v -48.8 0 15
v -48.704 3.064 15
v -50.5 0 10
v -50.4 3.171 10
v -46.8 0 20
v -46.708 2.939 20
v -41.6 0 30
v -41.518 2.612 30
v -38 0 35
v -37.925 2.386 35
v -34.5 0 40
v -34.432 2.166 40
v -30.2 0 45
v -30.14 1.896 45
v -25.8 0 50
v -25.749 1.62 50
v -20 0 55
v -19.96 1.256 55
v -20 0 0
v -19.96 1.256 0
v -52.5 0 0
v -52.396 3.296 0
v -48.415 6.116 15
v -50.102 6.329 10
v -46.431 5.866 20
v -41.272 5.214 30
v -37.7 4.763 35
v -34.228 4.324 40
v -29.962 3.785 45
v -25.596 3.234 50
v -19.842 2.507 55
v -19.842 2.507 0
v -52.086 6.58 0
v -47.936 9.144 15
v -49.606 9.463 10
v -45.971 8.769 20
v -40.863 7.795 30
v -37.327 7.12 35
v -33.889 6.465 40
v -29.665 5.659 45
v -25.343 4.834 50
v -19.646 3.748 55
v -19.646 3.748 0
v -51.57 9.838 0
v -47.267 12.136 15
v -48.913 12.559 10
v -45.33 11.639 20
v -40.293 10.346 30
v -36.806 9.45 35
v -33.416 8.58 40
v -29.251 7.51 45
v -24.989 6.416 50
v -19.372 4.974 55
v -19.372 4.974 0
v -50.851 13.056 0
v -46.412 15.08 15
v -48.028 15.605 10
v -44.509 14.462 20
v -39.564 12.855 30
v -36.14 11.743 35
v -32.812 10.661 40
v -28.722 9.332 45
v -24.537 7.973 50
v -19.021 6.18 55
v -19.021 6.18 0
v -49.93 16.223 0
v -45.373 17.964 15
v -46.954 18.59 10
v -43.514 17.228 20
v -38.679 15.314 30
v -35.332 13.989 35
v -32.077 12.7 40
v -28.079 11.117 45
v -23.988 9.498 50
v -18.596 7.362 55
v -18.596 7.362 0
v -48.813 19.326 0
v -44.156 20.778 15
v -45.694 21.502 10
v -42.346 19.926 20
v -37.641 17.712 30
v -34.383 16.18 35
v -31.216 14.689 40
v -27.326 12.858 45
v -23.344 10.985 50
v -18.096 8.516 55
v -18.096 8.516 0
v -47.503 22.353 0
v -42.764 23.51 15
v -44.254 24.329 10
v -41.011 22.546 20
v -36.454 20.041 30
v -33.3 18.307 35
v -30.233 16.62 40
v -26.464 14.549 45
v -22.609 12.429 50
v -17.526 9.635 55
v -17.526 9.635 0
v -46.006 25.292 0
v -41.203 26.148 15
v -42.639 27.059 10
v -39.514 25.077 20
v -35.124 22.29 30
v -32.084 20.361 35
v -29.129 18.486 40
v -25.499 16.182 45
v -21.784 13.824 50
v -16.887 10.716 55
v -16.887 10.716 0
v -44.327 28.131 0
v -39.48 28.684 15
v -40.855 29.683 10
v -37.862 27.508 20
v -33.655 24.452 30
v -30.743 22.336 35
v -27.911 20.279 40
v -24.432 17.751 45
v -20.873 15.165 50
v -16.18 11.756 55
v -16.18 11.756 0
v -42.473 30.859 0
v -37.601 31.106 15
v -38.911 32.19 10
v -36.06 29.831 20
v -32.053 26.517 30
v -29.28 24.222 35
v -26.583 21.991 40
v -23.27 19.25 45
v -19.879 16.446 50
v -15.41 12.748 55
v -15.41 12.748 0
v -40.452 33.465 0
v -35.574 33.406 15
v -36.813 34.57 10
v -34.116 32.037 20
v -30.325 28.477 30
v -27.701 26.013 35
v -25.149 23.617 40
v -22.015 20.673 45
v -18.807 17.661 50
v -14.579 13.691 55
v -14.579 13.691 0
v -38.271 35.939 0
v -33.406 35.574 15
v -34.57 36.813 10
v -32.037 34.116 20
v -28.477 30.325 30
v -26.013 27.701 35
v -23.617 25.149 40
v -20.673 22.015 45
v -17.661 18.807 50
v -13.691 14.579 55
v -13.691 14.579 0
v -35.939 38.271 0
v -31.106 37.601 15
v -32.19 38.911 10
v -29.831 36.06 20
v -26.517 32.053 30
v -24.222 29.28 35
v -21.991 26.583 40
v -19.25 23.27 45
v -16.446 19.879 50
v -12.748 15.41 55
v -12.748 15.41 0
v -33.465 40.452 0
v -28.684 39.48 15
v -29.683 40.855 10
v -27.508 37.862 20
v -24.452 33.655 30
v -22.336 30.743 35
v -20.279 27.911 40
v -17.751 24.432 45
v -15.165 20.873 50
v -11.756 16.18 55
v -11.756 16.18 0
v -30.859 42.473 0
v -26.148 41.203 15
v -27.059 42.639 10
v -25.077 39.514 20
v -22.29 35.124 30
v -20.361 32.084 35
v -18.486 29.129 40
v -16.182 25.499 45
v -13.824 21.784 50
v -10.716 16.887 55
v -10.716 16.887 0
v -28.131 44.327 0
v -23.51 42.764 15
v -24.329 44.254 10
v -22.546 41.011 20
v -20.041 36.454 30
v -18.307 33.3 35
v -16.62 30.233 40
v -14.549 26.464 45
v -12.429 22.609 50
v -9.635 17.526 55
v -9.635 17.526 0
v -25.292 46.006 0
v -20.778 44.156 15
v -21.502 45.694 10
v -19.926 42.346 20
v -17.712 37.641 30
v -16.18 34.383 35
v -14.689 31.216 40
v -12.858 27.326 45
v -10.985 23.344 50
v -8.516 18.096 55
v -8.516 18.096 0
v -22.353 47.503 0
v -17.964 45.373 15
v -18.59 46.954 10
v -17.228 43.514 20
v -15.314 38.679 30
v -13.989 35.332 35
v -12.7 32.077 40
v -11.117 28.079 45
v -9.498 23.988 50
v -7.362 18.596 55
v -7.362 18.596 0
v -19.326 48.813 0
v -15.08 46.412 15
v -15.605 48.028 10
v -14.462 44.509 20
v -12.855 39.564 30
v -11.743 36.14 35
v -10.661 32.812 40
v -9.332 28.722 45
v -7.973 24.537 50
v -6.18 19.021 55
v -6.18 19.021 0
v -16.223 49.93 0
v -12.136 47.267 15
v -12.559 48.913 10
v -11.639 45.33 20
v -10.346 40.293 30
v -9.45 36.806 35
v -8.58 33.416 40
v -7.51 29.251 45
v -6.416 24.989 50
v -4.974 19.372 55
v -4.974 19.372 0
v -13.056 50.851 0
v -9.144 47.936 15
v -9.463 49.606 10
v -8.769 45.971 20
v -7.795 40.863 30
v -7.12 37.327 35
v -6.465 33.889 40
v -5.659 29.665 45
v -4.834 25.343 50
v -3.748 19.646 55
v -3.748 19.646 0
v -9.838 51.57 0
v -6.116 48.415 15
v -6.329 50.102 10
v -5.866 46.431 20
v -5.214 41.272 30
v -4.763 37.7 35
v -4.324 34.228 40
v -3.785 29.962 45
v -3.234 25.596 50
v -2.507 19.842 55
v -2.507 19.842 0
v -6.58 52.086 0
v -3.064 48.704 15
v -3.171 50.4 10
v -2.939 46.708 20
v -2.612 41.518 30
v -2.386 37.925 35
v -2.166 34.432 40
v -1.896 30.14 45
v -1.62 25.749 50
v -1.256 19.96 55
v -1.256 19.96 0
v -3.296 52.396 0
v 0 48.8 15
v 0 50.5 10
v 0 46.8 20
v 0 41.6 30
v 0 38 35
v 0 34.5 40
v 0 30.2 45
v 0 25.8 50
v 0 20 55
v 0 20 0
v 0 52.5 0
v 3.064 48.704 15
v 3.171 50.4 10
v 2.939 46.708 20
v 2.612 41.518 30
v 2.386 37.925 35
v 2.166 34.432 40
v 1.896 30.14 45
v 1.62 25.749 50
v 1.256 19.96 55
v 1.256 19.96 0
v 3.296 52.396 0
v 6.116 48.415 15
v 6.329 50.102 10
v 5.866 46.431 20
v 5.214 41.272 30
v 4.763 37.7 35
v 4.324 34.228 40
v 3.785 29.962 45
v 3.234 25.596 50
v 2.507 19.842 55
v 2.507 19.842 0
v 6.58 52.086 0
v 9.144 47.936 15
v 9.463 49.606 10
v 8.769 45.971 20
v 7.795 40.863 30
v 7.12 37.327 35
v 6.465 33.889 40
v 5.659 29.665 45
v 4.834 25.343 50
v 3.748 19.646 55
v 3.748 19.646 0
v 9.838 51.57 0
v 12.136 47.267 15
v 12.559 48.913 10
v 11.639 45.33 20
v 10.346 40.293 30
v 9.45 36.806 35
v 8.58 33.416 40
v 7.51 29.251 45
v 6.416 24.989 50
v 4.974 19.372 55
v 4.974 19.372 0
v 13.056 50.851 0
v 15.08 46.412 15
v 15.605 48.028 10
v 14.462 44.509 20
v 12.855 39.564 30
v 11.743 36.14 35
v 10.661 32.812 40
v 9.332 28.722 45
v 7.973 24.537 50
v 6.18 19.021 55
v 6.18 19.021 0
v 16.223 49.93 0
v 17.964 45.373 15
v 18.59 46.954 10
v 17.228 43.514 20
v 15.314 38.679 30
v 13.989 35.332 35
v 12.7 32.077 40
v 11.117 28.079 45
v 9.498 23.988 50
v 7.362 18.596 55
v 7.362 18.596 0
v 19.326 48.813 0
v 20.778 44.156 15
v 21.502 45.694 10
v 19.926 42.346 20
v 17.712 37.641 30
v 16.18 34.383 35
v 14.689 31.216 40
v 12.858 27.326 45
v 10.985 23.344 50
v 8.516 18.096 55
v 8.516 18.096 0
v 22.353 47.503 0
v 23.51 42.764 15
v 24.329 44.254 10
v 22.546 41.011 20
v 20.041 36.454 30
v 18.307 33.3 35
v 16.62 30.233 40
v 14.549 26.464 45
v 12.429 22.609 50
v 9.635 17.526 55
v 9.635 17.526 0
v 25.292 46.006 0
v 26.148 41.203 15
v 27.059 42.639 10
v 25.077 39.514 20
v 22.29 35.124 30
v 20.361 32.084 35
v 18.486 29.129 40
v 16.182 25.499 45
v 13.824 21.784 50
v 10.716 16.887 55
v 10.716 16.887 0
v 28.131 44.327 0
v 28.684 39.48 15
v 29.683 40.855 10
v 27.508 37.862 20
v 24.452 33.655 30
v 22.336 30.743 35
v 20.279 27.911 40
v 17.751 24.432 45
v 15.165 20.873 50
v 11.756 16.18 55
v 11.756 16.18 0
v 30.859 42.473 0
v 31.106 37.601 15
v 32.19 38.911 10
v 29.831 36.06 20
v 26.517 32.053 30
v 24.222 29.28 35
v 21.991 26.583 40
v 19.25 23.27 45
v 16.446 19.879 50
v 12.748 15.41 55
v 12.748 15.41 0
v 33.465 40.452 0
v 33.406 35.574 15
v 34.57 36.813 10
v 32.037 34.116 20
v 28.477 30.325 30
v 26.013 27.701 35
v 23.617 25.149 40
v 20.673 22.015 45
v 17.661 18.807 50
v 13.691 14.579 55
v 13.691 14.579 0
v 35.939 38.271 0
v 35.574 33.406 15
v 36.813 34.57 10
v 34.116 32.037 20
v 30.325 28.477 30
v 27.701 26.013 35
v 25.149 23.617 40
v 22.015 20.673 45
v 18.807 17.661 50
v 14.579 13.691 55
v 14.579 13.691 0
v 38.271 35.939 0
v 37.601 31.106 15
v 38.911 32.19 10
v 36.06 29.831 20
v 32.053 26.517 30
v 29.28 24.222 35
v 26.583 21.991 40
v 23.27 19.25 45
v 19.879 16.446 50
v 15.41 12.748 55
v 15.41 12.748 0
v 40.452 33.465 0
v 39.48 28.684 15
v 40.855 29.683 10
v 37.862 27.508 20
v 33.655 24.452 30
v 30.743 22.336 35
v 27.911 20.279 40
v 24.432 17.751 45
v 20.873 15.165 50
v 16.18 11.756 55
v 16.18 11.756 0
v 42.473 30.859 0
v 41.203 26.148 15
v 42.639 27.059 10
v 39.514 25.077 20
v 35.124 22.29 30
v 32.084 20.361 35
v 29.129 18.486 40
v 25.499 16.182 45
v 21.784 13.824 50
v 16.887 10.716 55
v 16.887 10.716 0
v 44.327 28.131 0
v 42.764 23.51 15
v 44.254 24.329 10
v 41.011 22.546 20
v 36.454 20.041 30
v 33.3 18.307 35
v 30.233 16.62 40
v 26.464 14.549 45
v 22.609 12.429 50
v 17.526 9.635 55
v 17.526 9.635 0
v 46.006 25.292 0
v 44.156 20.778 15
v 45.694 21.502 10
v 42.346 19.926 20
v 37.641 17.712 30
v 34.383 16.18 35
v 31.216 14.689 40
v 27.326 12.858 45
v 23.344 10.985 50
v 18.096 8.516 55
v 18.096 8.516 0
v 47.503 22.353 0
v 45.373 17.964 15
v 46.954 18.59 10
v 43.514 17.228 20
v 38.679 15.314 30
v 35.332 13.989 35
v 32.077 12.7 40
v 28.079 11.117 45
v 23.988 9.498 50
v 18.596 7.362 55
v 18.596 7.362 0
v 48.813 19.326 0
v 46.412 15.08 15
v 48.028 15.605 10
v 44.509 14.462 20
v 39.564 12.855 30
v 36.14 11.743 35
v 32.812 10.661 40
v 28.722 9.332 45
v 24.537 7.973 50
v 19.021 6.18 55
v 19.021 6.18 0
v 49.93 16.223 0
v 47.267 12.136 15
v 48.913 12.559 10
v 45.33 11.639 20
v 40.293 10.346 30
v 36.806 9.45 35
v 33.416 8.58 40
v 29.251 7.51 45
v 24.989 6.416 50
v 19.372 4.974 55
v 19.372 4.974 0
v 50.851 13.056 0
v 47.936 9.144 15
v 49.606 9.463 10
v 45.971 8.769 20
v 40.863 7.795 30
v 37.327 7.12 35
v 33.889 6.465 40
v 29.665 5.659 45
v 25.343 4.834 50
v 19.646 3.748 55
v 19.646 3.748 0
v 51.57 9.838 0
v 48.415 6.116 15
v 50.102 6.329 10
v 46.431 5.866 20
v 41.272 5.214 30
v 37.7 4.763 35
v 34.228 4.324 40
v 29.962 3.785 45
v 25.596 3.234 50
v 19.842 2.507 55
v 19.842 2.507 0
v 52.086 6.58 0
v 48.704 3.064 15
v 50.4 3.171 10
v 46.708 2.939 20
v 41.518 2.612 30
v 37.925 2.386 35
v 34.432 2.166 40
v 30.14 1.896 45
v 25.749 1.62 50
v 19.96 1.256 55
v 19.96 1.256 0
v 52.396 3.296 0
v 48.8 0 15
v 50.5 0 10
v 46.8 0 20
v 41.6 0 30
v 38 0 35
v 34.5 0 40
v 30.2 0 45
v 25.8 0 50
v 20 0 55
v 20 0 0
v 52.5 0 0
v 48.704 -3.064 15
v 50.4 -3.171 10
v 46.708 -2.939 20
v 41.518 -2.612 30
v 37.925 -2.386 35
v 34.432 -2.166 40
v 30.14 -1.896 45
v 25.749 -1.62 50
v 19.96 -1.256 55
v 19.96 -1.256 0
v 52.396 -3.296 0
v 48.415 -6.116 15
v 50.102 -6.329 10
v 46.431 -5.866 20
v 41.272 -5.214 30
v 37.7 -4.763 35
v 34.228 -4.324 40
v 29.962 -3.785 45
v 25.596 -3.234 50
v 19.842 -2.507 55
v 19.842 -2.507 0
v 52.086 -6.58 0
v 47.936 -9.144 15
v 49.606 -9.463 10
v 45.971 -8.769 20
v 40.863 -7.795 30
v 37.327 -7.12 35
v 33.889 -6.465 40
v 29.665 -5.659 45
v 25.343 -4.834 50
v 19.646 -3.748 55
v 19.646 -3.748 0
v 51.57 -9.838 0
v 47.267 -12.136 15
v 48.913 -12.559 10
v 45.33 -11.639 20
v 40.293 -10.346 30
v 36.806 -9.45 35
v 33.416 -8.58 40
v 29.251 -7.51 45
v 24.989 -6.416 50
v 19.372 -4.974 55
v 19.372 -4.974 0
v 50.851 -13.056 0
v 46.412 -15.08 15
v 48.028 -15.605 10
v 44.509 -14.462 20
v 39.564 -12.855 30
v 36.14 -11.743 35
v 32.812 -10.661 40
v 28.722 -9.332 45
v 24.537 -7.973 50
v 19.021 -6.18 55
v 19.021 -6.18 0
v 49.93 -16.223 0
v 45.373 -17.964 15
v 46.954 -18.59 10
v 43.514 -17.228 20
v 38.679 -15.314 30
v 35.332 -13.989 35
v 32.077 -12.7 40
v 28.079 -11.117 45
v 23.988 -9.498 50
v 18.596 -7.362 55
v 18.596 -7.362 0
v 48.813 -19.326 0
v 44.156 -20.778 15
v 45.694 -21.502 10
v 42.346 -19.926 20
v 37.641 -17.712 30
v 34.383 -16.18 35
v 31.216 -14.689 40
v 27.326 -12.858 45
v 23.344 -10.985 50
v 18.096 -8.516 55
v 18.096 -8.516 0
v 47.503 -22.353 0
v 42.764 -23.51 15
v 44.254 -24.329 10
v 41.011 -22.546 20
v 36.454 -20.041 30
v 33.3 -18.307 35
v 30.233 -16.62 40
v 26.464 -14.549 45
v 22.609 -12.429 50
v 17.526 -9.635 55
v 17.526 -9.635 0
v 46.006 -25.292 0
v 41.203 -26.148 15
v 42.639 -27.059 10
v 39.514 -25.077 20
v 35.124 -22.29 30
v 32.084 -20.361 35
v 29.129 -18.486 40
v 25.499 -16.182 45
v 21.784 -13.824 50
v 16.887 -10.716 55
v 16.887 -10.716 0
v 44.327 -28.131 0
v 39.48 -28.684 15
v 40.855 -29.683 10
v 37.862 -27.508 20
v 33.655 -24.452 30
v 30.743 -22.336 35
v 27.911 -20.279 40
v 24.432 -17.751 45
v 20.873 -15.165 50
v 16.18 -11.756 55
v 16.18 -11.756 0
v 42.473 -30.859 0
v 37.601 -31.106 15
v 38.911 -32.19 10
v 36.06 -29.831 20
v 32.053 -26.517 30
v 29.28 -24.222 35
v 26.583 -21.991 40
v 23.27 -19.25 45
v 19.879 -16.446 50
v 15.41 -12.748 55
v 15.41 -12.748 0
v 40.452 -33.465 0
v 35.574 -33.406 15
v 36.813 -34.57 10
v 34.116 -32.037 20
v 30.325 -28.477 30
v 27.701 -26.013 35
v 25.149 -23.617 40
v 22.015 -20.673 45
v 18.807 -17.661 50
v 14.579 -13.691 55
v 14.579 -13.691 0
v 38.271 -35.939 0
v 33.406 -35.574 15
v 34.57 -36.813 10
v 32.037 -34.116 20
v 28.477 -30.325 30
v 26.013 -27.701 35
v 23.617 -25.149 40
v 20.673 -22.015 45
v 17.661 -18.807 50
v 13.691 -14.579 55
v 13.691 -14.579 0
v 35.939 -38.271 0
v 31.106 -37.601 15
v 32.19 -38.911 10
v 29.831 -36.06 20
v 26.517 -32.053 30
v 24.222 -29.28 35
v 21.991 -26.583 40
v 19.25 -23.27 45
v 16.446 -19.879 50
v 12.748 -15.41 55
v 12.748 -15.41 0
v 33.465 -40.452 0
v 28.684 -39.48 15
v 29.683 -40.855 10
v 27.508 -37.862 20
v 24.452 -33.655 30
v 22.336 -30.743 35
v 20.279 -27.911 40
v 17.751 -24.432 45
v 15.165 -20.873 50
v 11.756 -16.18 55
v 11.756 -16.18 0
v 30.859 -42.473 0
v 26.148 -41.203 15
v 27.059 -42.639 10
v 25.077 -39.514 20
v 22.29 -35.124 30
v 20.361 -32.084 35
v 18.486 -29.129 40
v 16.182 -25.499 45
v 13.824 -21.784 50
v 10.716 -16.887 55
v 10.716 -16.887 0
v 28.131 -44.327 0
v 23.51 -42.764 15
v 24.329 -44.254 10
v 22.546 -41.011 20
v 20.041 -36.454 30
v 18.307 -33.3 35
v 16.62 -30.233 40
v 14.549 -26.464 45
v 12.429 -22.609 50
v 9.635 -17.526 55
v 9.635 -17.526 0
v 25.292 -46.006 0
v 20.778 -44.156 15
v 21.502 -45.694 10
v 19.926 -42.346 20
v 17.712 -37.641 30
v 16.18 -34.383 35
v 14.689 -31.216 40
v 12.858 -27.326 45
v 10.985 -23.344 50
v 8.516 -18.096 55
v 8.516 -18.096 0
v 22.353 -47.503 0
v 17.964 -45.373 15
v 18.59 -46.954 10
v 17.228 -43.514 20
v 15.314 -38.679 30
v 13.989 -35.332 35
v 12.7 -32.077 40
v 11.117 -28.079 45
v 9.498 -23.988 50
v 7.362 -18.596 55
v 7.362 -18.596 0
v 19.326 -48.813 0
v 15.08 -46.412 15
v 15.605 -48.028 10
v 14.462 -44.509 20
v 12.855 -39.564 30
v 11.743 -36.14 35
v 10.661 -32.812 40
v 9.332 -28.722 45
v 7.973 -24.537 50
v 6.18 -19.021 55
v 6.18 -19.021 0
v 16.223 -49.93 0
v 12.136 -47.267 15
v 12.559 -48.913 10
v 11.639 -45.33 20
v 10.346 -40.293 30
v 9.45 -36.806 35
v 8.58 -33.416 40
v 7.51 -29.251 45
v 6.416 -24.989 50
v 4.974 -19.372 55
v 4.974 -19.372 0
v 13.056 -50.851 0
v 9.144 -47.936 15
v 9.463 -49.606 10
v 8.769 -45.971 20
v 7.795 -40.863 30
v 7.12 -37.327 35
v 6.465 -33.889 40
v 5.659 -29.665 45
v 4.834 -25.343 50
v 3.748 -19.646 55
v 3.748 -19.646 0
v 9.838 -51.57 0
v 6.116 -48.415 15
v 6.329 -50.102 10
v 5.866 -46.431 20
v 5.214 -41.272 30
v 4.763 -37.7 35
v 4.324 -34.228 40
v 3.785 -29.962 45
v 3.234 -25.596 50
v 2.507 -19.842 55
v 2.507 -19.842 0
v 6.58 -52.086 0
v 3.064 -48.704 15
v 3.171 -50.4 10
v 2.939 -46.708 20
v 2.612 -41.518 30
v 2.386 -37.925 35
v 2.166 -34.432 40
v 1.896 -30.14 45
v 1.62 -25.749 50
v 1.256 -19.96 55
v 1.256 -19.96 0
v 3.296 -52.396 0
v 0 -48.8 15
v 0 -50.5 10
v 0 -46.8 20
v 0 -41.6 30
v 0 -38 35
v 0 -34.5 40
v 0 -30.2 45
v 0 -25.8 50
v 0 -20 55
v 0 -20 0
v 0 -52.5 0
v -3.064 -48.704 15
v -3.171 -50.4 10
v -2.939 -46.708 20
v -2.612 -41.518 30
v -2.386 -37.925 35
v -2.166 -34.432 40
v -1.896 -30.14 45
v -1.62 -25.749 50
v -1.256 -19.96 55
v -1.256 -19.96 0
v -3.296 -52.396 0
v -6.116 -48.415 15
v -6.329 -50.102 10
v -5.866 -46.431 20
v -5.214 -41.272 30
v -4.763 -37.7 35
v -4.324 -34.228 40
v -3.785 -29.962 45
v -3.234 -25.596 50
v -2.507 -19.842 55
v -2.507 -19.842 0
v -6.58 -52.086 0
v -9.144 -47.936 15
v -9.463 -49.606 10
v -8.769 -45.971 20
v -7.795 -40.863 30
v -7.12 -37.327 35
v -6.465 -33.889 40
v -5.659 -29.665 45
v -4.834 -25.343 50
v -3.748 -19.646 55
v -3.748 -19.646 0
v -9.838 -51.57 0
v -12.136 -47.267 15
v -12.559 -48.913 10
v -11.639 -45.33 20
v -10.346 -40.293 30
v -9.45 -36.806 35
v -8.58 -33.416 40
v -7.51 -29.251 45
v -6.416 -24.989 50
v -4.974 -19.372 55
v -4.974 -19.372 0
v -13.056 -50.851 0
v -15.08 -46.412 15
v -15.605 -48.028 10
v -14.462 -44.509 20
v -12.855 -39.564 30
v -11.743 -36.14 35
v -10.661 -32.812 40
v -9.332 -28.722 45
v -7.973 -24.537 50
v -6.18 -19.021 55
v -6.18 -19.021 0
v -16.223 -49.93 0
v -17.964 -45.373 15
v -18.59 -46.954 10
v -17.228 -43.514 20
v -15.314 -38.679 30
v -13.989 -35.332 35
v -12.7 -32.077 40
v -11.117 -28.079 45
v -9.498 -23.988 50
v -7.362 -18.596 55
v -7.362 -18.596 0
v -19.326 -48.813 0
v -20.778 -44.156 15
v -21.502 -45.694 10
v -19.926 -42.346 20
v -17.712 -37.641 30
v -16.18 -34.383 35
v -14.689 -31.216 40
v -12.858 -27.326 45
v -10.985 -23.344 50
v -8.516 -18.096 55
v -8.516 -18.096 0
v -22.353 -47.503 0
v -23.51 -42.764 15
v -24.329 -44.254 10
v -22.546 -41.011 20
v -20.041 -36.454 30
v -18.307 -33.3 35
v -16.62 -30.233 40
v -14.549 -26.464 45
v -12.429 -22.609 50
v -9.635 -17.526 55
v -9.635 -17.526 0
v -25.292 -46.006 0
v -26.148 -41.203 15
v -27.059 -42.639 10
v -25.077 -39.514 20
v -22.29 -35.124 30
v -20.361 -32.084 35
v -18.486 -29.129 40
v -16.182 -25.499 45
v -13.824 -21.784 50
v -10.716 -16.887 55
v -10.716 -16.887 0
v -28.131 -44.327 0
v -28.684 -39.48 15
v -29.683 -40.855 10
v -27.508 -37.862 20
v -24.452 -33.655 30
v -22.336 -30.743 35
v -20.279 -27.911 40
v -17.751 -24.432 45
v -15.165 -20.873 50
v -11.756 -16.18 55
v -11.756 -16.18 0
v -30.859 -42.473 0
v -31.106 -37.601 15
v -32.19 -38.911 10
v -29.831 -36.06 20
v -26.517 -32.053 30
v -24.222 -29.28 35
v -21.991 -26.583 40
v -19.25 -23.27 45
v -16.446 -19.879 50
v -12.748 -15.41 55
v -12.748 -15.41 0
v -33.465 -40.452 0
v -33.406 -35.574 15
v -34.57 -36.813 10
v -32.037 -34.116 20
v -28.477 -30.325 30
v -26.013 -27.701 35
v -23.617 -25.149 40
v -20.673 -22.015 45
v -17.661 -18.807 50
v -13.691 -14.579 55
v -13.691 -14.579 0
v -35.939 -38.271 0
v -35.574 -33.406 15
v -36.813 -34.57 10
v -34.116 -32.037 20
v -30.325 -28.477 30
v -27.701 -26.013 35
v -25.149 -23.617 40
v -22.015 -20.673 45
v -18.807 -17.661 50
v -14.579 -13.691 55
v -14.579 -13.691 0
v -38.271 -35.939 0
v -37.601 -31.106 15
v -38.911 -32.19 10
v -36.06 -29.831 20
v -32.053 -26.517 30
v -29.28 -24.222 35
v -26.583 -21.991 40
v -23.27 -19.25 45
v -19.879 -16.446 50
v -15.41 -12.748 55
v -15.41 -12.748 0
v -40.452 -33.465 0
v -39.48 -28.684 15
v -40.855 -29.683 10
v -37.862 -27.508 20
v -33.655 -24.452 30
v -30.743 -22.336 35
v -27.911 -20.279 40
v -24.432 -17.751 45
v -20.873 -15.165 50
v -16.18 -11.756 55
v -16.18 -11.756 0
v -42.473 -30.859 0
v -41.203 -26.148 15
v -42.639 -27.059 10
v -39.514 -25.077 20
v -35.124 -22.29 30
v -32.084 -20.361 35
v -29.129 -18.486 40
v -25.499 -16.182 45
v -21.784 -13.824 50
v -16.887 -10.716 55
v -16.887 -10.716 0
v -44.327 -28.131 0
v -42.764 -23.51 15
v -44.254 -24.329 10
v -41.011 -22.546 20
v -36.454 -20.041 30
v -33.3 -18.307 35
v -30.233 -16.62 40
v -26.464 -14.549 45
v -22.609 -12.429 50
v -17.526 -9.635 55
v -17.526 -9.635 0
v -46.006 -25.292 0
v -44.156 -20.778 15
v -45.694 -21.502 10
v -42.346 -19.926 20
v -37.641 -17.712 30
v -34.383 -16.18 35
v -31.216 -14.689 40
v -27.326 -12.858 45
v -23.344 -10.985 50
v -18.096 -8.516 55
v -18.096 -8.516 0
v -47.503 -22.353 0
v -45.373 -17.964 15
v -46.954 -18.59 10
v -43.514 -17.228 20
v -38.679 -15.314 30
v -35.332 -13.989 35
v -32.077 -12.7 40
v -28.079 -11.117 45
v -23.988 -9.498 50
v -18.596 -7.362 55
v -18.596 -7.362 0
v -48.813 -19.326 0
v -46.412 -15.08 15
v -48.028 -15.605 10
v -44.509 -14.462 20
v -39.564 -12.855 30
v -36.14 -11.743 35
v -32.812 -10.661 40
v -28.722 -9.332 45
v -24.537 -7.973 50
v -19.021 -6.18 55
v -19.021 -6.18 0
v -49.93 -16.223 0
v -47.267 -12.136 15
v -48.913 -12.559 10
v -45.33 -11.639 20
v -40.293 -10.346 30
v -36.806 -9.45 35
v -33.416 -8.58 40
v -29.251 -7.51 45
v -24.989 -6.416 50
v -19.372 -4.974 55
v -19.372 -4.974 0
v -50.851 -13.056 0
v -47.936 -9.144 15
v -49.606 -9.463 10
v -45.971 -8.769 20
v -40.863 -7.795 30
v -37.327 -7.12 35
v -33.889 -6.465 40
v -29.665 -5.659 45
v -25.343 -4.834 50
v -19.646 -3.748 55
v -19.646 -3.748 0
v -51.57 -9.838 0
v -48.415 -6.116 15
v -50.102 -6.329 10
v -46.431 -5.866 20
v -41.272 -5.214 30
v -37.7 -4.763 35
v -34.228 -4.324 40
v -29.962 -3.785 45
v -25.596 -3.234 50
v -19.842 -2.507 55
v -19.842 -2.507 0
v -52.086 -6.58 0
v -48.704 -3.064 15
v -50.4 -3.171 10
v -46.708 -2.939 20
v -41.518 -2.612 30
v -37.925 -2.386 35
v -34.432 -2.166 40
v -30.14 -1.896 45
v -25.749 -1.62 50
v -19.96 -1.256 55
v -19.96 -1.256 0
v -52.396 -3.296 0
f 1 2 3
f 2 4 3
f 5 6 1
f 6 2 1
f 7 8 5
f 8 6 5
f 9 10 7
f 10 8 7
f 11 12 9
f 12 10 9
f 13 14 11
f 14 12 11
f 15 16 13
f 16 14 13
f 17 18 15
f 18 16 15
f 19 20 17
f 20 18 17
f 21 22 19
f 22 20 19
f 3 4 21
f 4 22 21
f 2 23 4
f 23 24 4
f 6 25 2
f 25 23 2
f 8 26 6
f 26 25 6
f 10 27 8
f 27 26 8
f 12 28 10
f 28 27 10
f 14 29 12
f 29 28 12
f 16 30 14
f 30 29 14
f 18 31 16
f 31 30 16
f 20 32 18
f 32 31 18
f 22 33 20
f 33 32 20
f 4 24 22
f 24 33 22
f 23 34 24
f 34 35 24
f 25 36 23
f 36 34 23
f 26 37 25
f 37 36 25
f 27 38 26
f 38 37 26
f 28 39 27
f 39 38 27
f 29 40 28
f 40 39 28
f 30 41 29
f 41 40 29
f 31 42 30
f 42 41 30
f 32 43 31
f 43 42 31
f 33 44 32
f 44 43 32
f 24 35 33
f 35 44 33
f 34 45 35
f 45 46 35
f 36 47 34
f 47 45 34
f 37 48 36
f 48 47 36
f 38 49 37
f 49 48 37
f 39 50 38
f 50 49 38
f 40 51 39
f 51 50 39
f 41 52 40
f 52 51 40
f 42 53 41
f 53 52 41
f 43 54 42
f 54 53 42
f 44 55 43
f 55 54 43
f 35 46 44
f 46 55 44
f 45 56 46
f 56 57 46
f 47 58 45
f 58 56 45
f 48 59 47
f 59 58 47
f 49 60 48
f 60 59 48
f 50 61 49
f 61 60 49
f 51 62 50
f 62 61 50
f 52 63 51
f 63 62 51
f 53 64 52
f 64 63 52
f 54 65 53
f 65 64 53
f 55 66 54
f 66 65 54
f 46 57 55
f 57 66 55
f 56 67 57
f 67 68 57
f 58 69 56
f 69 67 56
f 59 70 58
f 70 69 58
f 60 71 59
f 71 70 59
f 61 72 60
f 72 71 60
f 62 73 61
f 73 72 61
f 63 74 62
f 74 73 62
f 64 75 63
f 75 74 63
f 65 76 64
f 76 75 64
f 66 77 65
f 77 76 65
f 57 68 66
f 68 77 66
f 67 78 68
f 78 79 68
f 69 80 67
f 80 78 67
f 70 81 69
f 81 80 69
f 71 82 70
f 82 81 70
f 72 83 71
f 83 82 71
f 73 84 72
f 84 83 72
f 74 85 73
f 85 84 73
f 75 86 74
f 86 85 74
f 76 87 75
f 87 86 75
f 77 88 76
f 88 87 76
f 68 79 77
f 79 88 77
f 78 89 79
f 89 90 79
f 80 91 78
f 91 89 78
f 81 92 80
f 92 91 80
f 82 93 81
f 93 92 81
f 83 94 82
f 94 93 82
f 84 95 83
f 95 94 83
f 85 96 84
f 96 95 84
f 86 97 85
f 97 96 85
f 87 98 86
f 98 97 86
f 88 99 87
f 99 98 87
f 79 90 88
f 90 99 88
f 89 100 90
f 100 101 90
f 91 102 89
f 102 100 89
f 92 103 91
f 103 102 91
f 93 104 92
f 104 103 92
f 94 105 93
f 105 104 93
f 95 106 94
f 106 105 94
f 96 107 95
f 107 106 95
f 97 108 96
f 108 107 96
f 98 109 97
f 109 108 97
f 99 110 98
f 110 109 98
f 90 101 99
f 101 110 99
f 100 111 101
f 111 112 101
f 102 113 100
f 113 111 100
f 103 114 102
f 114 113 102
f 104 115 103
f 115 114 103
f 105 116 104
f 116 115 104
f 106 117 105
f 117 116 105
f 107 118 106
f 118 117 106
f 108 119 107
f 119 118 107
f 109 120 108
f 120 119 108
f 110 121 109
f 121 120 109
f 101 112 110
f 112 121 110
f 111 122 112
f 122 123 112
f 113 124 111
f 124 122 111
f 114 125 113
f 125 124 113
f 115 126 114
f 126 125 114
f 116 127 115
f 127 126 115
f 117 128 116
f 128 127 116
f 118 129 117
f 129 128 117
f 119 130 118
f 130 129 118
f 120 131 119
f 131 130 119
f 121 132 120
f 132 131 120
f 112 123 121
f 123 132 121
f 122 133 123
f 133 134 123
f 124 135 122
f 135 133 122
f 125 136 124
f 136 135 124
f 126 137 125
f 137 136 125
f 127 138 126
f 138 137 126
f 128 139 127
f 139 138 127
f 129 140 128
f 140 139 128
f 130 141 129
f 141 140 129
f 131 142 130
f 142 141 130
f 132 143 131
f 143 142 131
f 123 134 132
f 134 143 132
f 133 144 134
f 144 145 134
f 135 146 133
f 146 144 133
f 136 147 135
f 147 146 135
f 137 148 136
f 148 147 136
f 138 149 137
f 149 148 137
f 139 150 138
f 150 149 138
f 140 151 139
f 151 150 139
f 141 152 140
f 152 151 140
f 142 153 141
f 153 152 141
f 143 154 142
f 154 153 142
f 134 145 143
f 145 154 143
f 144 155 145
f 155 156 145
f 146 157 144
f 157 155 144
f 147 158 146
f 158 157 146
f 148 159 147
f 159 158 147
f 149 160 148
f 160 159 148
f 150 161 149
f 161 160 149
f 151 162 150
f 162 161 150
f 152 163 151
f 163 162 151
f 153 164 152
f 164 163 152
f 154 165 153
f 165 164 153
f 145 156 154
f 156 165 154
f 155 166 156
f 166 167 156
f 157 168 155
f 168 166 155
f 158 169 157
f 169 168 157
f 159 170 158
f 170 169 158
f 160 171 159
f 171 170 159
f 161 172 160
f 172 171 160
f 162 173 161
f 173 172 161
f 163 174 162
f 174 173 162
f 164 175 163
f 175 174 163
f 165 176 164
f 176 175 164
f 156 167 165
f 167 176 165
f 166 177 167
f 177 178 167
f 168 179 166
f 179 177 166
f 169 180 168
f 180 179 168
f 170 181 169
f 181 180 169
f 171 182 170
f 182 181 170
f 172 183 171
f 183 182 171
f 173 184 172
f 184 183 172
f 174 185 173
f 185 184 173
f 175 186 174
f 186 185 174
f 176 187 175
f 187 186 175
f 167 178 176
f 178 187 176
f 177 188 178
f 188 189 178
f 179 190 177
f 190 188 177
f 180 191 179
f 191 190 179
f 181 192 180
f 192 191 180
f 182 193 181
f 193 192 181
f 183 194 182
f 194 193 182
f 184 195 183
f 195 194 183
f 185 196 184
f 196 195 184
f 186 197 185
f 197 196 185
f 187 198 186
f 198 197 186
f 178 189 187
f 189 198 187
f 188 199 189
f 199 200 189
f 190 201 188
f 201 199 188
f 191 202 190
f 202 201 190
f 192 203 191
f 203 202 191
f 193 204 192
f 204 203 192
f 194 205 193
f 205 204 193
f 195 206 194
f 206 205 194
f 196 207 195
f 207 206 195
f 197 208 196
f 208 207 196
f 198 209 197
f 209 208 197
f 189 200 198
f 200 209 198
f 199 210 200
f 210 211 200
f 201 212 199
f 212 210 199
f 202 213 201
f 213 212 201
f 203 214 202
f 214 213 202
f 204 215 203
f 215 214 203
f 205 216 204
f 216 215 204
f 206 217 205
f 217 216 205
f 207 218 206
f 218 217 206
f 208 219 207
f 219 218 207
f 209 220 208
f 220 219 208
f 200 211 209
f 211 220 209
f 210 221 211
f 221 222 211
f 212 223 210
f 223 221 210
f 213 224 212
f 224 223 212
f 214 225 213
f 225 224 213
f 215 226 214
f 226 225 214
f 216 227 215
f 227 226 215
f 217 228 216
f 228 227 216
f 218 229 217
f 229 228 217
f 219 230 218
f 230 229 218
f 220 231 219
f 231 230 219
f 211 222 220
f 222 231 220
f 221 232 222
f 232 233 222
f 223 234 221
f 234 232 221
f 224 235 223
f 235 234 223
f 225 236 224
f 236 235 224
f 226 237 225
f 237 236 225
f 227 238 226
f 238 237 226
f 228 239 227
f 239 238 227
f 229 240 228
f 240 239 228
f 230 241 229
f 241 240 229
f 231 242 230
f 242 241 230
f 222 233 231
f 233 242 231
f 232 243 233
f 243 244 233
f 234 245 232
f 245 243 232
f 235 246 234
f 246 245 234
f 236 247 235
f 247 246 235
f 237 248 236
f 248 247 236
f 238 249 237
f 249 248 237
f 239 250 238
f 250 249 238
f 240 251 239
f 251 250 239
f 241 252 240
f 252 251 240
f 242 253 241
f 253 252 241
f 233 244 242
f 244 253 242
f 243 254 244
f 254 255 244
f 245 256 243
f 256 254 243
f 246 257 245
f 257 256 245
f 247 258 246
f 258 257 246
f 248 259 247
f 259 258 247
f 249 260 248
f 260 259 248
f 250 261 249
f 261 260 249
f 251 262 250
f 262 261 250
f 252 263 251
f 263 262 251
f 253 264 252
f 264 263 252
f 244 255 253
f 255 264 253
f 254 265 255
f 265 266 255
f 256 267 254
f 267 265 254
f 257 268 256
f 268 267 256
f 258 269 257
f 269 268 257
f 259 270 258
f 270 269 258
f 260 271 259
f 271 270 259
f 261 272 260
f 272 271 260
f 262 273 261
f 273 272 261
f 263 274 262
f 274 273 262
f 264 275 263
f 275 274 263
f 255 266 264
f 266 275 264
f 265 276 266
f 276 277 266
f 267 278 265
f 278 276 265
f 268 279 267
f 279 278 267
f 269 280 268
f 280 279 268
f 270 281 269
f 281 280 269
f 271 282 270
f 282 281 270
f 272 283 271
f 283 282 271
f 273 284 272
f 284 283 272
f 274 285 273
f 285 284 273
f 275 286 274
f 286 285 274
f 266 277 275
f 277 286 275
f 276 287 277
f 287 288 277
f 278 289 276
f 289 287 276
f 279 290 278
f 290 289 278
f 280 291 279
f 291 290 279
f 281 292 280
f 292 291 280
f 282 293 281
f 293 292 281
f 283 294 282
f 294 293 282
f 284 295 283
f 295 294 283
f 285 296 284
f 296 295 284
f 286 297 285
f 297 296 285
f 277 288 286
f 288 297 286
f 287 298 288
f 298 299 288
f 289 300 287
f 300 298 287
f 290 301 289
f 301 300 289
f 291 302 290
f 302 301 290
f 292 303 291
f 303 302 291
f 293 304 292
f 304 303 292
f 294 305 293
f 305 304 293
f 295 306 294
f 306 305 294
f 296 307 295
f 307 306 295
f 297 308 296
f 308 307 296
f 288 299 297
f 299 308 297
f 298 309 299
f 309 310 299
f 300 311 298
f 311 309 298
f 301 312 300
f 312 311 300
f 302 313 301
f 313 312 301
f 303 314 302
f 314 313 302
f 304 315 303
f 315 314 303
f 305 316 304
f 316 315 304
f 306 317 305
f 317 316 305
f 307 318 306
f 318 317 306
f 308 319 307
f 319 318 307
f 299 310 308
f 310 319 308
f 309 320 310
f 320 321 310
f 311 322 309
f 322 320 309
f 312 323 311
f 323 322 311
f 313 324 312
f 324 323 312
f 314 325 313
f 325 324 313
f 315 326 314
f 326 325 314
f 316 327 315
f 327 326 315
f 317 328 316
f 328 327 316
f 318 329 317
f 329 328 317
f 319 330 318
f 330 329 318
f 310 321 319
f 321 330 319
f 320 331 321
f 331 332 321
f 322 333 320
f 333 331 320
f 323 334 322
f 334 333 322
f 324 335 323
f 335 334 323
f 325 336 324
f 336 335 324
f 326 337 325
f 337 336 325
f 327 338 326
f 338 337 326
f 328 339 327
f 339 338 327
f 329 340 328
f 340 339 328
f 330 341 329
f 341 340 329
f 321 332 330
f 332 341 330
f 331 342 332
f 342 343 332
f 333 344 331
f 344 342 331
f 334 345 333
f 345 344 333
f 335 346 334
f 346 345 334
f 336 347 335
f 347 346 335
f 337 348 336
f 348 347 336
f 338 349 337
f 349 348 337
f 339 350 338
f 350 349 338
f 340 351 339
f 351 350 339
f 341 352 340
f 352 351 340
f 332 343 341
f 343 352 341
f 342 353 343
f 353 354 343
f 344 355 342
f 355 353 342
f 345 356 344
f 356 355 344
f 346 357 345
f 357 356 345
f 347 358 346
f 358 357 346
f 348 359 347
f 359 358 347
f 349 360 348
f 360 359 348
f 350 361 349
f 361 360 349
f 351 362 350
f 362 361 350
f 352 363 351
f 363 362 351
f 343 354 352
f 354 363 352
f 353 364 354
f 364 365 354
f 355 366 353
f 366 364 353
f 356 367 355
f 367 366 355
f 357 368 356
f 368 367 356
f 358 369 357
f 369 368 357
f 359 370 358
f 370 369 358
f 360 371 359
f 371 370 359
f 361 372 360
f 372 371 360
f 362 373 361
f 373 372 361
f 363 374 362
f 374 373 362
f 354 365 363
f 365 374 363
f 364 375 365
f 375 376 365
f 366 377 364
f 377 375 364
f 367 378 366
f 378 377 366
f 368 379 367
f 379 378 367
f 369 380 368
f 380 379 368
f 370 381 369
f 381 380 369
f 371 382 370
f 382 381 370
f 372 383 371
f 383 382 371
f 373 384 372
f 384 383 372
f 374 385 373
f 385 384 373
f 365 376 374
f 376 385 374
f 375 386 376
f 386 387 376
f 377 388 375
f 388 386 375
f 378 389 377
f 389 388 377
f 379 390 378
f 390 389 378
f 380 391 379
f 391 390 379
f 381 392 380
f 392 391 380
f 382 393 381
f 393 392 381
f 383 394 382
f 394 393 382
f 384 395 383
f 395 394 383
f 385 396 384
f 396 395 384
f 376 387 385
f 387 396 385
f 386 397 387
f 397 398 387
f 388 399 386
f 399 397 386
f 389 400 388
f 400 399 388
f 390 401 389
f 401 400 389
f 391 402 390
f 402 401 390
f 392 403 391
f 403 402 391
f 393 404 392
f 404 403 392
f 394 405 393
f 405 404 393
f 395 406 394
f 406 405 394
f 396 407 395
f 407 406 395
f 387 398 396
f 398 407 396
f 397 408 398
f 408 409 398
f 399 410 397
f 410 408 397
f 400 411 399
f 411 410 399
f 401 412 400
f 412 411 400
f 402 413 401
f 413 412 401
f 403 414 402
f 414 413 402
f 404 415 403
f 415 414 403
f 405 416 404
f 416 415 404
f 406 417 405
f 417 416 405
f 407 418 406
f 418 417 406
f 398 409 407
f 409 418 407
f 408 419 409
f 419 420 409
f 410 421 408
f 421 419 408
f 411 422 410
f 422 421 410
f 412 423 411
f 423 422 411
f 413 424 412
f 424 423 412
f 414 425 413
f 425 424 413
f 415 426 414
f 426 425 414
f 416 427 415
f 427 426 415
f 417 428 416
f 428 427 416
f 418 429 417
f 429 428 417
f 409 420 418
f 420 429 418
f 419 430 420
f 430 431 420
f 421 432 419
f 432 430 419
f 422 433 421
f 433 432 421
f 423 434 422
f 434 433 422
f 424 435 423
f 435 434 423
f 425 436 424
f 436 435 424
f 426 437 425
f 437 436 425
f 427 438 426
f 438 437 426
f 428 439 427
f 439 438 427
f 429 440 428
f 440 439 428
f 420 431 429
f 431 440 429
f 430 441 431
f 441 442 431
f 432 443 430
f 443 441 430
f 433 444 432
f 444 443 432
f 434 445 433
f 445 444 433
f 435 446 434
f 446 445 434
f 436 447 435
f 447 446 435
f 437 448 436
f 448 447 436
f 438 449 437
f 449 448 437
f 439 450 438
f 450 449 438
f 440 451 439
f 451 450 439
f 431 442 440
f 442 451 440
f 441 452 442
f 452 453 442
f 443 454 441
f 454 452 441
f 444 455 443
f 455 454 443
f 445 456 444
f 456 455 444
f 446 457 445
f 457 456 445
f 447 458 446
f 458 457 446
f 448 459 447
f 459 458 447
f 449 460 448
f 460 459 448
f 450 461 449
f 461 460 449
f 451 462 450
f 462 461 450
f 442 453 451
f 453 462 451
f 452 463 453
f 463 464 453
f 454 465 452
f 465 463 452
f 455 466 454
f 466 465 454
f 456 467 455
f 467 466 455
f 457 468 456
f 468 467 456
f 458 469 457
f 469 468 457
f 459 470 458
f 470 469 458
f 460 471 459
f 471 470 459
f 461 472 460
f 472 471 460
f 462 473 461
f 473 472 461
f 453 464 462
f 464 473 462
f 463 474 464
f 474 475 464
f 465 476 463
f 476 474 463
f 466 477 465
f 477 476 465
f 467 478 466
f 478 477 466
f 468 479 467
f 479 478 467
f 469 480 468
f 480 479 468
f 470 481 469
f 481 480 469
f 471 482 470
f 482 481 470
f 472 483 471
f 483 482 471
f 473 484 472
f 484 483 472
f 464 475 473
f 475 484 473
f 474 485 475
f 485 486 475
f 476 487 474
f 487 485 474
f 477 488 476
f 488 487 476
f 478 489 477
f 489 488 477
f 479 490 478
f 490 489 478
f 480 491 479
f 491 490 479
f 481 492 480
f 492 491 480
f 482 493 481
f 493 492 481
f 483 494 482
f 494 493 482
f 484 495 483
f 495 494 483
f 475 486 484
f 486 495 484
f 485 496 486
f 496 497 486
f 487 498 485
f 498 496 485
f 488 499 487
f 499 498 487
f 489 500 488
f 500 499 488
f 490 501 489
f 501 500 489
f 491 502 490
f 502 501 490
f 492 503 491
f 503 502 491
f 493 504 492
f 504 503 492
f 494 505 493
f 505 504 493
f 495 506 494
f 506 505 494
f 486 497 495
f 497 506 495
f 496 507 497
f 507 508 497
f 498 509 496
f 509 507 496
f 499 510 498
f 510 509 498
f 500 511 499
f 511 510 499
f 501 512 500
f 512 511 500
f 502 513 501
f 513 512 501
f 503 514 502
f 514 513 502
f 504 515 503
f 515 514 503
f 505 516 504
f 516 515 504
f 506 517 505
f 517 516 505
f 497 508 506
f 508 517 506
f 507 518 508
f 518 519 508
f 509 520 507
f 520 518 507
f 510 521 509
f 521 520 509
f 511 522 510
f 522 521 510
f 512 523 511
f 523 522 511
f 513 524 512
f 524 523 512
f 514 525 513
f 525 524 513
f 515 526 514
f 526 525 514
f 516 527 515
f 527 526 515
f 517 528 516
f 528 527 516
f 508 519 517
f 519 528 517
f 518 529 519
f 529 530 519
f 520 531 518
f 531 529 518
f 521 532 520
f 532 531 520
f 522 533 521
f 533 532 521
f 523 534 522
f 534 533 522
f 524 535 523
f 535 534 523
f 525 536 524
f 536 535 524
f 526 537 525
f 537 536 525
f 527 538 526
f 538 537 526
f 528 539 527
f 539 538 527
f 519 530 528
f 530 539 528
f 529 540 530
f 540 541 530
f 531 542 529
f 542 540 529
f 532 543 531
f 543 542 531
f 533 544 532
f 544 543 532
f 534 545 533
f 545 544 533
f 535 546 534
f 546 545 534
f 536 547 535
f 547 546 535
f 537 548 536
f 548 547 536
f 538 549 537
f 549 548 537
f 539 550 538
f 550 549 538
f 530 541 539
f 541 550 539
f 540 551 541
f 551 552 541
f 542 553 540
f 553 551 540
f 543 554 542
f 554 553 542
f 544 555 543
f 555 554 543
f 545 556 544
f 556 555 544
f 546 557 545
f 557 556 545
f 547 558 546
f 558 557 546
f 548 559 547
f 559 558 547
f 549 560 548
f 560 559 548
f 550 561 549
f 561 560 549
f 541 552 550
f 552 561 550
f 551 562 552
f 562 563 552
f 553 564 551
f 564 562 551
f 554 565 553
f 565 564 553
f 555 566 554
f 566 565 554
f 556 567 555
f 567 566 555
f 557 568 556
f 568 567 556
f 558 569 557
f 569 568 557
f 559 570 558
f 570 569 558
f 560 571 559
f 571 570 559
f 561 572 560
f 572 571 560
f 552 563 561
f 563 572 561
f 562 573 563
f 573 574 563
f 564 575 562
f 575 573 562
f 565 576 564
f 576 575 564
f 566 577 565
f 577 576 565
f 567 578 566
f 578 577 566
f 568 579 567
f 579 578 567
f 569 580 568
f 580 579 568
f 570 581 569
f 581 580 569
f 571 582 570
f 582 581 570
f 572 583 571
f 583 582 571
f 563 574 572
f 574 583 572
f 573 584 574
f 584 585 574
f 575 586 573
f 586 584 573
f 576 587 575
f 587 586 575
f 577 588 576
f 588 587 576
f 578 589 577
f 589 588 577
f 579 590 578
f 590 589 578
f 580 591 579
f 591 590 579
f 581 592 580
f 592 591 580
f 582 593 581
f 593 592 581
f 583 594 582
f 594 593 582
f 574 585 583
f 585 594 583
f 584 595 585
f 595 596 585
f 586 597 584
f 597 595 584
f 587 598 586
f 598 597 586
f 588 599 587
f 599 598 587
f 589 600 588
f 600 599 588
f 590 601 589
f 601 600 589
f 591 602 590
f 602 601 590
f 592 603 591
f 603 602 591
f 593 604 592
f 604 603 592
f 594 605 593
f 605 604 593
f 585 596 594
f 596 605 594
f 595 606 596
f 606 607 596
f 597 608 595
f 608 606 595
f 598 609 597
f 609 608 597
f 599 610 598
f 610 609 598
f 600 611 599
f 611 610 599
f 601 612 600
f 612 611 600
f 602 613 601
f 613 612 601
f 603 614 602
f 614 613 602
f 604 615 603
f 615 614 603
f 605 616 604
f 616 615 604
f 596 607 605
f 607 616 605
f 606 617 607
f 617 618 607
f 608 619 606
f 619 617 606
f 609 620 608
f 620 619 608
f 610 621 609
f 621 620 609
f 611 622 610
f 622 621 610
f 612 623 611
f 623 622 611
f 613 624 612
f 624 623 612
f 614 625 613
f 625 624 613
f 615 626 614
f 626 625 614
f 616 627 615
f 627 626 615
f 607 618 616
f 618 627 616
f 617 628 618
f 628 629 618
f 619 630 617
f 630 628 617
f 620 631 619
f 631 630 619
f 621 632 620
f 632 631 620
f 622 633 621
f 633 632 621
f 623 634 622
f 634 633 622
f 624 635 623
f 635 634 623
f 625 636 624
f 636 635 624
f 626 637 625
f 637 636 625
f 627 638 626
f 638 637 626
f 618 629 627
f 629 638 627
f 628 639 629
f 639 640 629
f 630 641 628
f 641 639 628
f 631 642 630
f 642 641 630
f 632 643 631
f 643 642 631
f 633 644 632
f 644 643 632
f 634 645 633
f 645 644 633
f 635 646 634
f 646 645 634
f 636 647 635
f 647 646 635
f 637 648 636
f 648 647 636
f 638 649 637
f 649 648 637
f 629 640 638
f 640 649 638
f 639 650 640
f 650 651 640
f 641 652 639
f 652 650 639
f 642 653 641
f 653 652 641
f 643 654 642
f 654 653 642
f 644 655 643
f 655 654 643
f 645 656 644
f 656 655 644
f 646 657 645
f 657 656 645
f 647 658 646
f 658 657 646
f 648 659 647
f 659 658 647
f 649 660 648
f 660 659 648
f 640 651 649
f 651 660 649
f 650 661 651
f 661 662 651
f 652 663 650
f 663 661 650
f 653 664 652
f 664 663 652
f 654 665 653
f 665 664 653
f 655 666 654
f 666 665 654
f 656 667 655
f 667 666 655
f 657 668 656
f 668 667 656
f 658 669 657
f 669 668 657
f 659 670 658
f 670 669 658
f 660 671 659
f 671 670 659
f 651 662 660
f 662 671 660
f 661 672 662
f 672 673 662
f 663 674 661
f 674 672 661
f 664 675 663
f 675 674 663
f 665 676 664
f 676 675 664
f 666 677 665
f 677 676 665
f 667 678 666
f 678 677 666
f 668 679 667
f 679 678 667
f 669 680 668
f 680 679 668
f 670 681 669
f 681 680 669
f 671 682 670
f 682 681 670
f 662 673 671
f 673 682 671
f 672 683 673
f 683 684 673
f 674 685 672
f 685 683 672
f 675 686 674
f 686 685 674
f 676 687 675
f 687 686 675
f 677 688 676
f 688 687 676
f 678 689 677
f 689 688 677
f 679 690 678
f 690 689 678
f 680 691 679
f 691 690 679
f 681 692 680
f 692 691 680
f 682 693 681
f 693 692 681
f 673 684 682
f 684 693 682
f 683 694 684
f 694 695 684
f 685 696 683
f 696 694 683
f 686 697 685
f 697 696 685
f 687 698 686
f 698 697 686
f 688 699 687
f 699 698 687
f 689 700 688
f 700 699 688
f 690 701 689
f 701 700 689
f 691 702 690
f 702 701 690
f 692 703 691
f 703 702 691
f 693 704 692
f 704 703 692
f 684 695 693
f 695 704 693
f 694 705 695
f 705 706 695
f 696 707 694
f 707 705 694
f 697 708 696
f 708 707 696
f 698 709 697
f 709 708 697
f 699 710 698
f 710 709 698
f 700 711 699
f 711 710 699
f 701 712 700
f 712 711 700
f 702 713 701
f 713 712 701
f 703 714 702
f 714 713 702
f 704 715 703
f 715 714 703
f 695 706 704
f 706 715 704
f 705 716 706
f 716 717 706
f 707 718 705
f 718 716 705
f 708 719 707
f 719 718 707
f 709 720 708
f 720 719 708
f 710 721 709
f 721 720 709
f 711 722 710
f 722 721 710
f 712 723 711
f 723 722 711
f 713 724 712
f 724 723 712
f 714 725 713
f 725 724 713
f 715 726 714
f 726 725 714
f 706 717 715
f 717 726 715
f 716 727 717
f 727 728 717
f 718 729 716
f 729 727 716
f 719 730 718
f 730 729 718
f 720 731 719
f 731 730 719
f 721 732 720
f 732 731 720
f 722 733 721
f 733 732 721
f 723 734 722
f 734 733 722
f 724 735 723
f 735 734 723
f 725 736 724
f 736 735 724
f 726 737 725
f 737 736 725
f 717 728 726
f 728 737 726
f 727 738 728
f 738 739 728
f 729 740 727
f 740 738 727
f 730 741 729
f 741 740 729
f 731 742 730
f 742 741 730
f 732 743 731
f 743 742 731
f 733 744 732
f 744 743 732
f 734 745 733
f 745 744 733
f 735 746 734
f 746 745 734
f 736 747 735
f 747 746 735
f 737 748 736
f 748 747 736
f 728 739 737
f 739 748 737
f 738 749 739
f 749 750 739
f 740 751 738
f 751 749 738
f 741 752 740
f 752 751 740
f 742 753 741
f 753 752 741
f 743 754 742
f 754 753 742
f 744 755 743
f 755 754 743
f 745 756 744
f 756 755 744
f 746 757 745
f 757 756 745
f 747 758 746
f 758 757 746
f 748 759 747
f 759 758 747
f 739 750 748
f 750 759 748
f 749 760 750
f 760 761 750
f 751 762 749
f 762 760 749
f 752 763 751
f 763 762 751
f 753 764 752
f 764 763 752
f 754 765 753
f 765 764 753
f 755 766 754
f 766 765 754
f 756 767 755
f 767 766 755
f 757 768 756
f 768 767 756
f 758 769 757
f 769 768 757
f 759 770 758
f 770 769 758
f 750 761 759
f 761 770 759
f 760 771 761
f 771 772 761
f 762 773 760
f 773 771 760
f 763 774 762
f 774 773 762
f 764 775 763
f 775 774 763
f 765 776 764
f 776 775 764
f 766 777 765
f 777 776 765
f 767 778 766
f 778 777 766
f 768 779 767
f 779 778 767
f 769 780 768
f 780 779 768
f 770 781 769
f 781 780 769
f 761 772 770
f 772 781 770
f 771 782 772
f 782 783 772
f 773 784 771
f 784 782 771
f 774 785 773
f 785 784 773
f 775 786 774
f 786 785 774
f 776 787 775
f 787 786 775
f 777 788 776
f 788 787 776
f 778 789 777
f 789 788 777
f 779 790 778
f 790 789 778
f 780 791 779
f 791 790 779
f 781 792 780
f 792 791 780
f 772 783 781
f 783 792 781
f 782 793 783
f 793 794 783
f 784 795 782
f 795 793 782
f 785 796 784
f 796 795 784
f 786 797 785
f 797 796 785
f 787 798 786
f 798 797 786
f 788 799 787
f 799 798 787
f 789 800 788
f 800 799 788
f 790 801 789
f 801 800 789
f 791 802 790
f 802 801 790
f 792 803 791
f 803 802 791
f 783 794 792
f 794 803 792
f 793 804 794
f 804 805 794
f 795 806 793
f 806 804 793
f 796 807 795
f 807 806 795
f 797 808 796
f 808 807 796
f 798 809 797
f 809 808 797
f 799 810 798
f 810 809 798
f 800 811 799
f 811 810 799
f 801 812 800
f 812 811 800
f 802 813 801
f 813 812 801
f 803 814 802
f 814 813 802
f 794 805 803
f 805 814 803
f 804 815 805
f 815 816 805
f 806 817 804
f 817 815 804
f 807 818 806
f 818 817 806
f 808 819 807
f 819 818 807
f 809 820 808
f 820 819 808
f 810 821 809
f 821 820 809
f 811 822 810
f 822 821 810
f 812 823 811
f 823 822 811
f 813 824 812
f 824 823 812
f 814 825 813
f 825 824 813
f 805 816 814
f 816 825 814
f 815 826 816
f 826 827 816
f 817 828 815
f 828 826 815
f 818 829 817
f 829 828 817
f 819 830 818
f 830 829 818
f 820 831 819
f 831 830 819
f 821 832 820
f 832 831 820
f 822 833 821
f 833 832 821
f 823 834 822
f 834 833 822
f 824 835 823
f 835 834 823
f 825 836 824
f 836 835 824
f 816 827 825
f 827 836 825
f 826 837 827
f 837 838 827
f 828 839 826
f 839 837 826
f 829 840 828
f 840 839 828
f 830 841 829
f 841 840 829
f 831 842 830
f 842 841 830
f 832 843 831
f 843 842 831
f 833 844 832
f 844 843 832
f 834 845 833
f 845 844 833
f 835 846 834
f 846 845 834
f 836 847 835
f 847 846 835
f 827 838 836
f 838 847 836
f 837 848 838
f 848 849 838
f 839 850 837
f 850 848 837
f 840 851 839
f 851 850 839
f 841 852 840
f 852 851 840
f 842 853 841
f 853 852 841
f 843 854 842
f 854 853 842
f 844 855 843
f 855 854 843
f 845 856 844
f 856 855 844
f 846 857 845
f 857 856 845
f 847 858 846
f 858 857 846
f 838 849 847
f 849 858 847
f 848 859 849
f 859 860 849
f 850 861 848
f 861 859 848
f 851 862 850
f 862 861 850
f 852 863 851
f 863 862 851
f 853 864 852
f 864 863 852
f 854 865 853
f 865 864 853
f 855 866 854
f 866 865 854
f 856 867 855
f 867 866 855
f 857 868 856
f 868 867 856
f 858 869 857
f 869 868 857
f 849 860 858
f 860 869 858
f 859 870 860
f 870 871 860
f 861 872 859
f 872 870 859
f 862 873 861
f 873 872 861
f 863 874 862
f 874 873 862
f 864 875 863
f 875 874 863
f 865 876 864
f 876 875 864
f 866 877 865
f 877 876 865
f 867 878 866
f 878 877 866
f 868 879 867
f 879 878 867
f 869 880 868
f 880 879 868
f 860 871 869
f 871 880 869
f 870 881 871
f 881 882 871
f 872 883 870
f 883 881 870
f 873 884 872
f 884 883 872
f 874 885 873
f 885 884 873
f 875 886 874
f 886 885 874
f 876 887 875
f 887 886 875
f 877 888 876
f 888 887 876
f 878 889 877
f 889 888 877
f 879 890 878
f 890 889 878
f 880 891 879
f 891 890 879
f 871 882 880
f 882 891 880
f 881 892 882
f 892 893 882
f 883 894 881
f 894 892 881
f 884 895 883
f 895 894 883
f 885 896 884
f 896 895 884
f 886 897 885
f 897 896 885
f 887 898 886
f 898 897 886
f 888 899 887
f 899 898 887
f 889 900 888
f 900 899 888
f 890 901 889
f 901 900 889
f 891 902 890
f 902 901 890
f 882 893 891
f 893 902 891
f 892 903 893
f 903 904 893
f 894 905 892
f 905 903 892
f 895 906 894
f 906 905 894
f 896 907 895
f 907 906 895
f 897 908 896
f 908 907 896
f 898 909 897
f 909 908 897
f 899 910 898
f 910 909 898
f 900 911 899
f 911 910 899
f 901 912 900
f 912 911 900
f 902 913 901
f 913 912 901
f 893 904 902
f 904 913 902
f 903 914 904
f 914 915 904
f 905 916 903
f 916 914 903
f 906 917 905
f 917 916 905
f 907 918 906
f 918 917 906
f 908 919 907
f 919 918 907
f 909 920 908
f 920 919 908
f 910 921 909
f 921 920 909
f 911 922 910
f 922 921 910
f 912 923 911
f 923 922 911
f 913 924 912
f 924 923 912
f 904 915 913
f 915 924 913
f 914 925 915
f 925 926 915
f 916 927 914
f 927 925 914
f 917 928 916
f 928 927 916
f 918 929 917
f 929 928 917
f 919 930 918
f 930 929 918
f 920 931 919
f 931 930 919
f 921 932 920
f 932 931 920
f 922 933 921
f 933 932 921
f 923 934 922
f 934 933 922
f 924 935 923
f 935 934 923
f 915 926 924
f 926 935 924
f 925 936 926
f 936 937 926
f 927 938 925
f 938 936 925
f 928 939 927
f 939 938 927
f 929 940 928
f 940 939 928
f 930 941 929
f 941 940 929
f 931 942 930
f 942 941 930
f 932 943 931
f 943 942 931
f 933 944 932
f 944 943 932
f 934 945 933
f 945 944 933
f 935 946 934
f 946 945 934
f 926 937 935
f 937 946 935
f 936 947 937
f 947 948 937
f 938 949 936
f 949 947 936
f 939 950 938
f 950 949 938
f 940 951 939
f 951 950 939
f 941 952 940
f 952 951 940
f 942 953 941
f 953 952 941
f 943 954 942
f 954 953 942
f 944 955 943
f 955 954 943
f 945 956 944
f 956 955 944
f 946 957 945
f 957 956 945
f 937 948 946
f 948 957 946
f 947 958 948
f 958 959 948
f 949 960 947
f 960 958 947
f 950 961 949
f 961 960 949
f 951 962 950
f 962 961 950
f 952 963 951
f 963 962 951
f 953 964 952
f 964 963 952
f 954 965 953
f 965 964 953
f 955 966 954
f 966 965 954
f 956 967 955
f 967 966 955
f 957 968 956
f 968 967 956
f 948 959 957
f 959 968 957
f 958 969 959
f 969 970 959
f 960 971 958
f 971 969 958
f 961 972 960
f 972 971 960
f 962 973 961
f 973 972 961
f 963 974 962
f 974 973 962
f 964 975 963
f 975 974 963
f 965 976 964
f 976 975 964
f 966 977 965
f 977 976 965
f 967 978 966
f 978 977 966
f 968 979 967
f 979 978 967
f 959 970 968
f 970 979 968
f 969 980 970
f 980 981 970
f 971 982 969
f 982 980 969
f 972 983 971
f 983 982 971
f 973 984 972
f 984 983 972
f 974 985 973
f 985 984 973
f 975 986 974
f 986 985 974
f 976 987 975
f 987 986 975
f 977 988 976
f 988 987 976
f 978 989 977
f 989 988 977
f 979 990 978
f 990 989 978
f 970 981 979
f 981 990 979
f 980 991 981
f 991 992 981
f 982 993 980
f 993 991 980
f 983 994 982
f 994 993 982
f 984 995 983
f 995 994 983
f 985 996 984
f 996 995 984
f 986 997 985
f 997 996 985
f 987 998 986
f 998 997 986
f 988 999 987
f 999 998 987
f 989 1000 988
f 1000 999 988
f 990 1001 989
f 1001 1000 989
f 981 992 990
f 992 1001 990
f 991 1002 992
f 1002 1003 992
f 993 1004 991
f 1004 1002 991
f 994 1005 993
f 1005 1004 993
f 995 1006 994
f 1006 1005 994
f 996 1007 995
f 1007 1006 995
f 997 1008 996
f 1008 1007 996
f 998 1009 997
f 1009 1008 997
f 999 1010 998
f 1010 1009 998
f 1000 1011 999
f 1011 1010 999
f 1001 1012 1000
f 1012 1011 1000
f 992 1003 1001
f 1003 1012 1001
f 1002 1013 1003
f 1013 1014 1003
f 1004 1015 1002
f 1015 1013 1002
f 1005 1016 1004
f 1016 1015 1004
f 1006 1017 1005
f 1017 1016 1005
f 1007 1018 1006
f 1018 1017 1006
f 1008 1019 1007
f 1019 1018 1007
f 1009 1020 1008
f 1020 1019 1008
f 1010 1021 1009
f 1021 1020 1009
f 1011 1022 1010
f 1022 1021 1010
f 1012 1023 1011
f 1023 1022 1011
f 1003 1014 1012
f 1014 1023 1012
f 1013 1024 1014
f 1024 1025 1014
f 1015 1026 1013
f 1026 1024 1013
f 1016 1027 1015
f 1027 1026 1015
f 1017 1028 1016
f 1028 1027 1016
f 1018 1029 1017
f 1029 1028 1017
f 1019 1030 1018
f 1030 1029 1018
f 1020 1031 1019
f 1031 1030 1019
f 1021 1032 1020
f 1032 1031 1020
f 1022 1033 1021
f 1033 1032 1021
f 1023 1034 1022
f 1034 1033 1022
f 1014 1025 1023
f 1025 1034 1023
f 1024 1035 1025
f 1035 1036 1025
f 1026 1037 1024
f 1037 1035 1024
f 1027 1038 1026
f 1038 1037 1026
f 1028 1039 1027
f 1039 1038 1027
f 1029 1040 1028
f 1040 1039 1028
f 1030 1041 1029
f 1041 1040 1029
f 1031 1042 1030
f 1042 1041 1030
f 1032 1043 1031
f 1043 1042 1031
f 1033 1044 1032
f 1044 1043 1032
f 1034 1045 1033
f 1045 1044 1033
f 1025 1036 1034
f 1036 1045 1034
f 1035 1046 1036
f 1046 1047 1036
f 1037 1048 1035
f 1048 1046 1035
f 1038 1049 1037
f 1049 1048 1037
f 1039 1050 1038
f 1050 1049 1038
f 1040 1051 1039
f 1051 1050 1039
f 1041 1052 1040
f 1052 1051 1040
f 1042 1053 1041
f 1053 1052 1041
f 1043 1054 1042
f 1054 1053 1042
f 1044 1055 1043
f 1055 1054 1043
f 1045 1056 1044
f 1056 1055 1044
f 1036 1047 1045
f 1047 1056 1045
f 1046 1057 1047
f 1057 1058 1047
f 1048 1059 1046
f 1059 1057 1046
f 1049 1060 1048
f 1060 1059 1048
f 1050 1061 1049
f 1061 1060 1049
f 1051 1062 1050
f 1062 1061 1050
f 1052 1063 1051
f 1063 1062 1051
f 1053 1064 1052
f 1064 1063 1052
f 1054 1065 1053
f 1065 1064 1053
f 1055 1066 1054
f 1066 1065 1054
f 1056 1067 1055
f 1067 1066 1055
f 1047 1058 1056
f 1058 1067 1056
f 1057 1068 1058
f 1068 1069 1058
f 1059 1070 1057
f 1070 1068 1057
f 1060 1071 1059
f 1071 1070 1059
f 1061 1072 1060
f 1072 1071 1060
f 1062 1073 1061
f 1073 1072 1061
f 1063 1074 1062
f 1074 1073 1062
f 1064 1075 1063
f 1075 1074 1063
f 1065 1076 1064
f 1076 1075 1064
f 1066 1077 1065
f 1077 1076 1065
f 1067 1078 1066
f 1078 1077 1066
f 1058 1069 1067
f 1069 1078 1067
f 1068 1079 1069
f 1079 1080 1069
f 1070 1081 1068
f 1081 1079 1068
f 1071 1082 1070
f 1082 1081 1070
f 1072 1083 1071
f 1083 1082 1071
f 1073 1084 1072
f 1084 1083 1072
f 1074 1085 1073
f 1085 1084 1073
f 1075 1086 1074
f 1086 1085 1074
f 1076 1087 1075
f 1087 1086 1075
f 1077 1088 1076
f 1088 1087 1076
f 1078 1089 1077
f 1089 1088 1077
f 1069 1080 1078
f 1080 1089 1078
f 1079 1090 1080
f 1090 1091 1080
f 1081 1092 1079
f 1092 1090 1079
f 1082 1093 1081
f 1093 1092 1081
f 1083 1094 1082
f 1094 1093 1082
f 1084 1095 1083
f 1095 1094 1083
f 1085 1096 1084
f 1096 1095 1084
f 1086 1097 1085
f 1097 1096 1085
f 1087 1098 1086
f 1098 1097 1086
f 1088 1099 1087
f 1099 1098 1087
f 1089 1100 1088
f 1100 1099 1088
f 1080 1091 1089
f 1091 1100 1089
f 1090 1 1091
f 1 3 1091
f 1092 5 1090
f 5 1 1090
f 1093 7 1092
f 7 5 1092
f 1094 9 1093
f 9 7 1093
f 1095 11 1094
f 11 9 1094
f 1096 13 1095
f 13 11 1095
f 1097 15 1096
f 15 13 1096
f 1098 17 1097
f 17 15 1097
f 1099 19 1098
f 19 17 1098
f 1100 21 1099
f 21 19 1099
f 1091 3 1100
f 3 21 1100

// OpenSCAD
/* pod-bottle_neck.scad
   POD neck insert for POD #1
   03/04/2017
*/

$fn = 100;

bot_dia = 105;


// Contour
nofs = bot_dia/2 - 45;

y1   = 0;   x1  = 	45.0+nofs;
y2   = 5;   x2  = 	44.0+nofs;
y3   = 10;   x3  = 	43.0+nofs;
y4   = 15;   x4  = 	41.3+nofs;
y5   = 20;   x5  = 	39.3+nofs;
y6   = 25;   x6  = 	36.7+nofs;
y7   = 30;   x7  = 	34.1+nofs;
y8   = 35;   x8  = 	30.5+nofs;
y9   = 40;   x9  = 	27.0+nofs;
y10  = 45;   x10 = 	22.7+nofs;
y11  = 50;  x11 = 	18.3+nofs;
y12  = 55;  x12 = 	12.5+nofs;
//y13  = 60;  x13 = 	6.0+nofs;
//y14  = 65;  x14 = 	1.8+nofs;
//y15  = 65;  x15 =        0+nofs;
y16  = 0;   x16 =        0+nofs+12.5;

module shell()
{
  rotate_extrude(angle=360)
  {
   polygon(points = [
     [x1,y1], 
     [x2,y2], 
     [x3,y3], 
     [x4,y4],
     [x5,y5], 
     [x6,y6], 
     [x7,y7], 
     [x8,y8], 
     [x9,y9], 
     [x10,y10], 
     [x11,y11], 
     [x12,y12], 
//     [x13,y13], 
//     [x14,y14],
//     [x15,y15],
     [x16,y16]
               ]);
  }
}

module total()
{
  shell();
}
total();
